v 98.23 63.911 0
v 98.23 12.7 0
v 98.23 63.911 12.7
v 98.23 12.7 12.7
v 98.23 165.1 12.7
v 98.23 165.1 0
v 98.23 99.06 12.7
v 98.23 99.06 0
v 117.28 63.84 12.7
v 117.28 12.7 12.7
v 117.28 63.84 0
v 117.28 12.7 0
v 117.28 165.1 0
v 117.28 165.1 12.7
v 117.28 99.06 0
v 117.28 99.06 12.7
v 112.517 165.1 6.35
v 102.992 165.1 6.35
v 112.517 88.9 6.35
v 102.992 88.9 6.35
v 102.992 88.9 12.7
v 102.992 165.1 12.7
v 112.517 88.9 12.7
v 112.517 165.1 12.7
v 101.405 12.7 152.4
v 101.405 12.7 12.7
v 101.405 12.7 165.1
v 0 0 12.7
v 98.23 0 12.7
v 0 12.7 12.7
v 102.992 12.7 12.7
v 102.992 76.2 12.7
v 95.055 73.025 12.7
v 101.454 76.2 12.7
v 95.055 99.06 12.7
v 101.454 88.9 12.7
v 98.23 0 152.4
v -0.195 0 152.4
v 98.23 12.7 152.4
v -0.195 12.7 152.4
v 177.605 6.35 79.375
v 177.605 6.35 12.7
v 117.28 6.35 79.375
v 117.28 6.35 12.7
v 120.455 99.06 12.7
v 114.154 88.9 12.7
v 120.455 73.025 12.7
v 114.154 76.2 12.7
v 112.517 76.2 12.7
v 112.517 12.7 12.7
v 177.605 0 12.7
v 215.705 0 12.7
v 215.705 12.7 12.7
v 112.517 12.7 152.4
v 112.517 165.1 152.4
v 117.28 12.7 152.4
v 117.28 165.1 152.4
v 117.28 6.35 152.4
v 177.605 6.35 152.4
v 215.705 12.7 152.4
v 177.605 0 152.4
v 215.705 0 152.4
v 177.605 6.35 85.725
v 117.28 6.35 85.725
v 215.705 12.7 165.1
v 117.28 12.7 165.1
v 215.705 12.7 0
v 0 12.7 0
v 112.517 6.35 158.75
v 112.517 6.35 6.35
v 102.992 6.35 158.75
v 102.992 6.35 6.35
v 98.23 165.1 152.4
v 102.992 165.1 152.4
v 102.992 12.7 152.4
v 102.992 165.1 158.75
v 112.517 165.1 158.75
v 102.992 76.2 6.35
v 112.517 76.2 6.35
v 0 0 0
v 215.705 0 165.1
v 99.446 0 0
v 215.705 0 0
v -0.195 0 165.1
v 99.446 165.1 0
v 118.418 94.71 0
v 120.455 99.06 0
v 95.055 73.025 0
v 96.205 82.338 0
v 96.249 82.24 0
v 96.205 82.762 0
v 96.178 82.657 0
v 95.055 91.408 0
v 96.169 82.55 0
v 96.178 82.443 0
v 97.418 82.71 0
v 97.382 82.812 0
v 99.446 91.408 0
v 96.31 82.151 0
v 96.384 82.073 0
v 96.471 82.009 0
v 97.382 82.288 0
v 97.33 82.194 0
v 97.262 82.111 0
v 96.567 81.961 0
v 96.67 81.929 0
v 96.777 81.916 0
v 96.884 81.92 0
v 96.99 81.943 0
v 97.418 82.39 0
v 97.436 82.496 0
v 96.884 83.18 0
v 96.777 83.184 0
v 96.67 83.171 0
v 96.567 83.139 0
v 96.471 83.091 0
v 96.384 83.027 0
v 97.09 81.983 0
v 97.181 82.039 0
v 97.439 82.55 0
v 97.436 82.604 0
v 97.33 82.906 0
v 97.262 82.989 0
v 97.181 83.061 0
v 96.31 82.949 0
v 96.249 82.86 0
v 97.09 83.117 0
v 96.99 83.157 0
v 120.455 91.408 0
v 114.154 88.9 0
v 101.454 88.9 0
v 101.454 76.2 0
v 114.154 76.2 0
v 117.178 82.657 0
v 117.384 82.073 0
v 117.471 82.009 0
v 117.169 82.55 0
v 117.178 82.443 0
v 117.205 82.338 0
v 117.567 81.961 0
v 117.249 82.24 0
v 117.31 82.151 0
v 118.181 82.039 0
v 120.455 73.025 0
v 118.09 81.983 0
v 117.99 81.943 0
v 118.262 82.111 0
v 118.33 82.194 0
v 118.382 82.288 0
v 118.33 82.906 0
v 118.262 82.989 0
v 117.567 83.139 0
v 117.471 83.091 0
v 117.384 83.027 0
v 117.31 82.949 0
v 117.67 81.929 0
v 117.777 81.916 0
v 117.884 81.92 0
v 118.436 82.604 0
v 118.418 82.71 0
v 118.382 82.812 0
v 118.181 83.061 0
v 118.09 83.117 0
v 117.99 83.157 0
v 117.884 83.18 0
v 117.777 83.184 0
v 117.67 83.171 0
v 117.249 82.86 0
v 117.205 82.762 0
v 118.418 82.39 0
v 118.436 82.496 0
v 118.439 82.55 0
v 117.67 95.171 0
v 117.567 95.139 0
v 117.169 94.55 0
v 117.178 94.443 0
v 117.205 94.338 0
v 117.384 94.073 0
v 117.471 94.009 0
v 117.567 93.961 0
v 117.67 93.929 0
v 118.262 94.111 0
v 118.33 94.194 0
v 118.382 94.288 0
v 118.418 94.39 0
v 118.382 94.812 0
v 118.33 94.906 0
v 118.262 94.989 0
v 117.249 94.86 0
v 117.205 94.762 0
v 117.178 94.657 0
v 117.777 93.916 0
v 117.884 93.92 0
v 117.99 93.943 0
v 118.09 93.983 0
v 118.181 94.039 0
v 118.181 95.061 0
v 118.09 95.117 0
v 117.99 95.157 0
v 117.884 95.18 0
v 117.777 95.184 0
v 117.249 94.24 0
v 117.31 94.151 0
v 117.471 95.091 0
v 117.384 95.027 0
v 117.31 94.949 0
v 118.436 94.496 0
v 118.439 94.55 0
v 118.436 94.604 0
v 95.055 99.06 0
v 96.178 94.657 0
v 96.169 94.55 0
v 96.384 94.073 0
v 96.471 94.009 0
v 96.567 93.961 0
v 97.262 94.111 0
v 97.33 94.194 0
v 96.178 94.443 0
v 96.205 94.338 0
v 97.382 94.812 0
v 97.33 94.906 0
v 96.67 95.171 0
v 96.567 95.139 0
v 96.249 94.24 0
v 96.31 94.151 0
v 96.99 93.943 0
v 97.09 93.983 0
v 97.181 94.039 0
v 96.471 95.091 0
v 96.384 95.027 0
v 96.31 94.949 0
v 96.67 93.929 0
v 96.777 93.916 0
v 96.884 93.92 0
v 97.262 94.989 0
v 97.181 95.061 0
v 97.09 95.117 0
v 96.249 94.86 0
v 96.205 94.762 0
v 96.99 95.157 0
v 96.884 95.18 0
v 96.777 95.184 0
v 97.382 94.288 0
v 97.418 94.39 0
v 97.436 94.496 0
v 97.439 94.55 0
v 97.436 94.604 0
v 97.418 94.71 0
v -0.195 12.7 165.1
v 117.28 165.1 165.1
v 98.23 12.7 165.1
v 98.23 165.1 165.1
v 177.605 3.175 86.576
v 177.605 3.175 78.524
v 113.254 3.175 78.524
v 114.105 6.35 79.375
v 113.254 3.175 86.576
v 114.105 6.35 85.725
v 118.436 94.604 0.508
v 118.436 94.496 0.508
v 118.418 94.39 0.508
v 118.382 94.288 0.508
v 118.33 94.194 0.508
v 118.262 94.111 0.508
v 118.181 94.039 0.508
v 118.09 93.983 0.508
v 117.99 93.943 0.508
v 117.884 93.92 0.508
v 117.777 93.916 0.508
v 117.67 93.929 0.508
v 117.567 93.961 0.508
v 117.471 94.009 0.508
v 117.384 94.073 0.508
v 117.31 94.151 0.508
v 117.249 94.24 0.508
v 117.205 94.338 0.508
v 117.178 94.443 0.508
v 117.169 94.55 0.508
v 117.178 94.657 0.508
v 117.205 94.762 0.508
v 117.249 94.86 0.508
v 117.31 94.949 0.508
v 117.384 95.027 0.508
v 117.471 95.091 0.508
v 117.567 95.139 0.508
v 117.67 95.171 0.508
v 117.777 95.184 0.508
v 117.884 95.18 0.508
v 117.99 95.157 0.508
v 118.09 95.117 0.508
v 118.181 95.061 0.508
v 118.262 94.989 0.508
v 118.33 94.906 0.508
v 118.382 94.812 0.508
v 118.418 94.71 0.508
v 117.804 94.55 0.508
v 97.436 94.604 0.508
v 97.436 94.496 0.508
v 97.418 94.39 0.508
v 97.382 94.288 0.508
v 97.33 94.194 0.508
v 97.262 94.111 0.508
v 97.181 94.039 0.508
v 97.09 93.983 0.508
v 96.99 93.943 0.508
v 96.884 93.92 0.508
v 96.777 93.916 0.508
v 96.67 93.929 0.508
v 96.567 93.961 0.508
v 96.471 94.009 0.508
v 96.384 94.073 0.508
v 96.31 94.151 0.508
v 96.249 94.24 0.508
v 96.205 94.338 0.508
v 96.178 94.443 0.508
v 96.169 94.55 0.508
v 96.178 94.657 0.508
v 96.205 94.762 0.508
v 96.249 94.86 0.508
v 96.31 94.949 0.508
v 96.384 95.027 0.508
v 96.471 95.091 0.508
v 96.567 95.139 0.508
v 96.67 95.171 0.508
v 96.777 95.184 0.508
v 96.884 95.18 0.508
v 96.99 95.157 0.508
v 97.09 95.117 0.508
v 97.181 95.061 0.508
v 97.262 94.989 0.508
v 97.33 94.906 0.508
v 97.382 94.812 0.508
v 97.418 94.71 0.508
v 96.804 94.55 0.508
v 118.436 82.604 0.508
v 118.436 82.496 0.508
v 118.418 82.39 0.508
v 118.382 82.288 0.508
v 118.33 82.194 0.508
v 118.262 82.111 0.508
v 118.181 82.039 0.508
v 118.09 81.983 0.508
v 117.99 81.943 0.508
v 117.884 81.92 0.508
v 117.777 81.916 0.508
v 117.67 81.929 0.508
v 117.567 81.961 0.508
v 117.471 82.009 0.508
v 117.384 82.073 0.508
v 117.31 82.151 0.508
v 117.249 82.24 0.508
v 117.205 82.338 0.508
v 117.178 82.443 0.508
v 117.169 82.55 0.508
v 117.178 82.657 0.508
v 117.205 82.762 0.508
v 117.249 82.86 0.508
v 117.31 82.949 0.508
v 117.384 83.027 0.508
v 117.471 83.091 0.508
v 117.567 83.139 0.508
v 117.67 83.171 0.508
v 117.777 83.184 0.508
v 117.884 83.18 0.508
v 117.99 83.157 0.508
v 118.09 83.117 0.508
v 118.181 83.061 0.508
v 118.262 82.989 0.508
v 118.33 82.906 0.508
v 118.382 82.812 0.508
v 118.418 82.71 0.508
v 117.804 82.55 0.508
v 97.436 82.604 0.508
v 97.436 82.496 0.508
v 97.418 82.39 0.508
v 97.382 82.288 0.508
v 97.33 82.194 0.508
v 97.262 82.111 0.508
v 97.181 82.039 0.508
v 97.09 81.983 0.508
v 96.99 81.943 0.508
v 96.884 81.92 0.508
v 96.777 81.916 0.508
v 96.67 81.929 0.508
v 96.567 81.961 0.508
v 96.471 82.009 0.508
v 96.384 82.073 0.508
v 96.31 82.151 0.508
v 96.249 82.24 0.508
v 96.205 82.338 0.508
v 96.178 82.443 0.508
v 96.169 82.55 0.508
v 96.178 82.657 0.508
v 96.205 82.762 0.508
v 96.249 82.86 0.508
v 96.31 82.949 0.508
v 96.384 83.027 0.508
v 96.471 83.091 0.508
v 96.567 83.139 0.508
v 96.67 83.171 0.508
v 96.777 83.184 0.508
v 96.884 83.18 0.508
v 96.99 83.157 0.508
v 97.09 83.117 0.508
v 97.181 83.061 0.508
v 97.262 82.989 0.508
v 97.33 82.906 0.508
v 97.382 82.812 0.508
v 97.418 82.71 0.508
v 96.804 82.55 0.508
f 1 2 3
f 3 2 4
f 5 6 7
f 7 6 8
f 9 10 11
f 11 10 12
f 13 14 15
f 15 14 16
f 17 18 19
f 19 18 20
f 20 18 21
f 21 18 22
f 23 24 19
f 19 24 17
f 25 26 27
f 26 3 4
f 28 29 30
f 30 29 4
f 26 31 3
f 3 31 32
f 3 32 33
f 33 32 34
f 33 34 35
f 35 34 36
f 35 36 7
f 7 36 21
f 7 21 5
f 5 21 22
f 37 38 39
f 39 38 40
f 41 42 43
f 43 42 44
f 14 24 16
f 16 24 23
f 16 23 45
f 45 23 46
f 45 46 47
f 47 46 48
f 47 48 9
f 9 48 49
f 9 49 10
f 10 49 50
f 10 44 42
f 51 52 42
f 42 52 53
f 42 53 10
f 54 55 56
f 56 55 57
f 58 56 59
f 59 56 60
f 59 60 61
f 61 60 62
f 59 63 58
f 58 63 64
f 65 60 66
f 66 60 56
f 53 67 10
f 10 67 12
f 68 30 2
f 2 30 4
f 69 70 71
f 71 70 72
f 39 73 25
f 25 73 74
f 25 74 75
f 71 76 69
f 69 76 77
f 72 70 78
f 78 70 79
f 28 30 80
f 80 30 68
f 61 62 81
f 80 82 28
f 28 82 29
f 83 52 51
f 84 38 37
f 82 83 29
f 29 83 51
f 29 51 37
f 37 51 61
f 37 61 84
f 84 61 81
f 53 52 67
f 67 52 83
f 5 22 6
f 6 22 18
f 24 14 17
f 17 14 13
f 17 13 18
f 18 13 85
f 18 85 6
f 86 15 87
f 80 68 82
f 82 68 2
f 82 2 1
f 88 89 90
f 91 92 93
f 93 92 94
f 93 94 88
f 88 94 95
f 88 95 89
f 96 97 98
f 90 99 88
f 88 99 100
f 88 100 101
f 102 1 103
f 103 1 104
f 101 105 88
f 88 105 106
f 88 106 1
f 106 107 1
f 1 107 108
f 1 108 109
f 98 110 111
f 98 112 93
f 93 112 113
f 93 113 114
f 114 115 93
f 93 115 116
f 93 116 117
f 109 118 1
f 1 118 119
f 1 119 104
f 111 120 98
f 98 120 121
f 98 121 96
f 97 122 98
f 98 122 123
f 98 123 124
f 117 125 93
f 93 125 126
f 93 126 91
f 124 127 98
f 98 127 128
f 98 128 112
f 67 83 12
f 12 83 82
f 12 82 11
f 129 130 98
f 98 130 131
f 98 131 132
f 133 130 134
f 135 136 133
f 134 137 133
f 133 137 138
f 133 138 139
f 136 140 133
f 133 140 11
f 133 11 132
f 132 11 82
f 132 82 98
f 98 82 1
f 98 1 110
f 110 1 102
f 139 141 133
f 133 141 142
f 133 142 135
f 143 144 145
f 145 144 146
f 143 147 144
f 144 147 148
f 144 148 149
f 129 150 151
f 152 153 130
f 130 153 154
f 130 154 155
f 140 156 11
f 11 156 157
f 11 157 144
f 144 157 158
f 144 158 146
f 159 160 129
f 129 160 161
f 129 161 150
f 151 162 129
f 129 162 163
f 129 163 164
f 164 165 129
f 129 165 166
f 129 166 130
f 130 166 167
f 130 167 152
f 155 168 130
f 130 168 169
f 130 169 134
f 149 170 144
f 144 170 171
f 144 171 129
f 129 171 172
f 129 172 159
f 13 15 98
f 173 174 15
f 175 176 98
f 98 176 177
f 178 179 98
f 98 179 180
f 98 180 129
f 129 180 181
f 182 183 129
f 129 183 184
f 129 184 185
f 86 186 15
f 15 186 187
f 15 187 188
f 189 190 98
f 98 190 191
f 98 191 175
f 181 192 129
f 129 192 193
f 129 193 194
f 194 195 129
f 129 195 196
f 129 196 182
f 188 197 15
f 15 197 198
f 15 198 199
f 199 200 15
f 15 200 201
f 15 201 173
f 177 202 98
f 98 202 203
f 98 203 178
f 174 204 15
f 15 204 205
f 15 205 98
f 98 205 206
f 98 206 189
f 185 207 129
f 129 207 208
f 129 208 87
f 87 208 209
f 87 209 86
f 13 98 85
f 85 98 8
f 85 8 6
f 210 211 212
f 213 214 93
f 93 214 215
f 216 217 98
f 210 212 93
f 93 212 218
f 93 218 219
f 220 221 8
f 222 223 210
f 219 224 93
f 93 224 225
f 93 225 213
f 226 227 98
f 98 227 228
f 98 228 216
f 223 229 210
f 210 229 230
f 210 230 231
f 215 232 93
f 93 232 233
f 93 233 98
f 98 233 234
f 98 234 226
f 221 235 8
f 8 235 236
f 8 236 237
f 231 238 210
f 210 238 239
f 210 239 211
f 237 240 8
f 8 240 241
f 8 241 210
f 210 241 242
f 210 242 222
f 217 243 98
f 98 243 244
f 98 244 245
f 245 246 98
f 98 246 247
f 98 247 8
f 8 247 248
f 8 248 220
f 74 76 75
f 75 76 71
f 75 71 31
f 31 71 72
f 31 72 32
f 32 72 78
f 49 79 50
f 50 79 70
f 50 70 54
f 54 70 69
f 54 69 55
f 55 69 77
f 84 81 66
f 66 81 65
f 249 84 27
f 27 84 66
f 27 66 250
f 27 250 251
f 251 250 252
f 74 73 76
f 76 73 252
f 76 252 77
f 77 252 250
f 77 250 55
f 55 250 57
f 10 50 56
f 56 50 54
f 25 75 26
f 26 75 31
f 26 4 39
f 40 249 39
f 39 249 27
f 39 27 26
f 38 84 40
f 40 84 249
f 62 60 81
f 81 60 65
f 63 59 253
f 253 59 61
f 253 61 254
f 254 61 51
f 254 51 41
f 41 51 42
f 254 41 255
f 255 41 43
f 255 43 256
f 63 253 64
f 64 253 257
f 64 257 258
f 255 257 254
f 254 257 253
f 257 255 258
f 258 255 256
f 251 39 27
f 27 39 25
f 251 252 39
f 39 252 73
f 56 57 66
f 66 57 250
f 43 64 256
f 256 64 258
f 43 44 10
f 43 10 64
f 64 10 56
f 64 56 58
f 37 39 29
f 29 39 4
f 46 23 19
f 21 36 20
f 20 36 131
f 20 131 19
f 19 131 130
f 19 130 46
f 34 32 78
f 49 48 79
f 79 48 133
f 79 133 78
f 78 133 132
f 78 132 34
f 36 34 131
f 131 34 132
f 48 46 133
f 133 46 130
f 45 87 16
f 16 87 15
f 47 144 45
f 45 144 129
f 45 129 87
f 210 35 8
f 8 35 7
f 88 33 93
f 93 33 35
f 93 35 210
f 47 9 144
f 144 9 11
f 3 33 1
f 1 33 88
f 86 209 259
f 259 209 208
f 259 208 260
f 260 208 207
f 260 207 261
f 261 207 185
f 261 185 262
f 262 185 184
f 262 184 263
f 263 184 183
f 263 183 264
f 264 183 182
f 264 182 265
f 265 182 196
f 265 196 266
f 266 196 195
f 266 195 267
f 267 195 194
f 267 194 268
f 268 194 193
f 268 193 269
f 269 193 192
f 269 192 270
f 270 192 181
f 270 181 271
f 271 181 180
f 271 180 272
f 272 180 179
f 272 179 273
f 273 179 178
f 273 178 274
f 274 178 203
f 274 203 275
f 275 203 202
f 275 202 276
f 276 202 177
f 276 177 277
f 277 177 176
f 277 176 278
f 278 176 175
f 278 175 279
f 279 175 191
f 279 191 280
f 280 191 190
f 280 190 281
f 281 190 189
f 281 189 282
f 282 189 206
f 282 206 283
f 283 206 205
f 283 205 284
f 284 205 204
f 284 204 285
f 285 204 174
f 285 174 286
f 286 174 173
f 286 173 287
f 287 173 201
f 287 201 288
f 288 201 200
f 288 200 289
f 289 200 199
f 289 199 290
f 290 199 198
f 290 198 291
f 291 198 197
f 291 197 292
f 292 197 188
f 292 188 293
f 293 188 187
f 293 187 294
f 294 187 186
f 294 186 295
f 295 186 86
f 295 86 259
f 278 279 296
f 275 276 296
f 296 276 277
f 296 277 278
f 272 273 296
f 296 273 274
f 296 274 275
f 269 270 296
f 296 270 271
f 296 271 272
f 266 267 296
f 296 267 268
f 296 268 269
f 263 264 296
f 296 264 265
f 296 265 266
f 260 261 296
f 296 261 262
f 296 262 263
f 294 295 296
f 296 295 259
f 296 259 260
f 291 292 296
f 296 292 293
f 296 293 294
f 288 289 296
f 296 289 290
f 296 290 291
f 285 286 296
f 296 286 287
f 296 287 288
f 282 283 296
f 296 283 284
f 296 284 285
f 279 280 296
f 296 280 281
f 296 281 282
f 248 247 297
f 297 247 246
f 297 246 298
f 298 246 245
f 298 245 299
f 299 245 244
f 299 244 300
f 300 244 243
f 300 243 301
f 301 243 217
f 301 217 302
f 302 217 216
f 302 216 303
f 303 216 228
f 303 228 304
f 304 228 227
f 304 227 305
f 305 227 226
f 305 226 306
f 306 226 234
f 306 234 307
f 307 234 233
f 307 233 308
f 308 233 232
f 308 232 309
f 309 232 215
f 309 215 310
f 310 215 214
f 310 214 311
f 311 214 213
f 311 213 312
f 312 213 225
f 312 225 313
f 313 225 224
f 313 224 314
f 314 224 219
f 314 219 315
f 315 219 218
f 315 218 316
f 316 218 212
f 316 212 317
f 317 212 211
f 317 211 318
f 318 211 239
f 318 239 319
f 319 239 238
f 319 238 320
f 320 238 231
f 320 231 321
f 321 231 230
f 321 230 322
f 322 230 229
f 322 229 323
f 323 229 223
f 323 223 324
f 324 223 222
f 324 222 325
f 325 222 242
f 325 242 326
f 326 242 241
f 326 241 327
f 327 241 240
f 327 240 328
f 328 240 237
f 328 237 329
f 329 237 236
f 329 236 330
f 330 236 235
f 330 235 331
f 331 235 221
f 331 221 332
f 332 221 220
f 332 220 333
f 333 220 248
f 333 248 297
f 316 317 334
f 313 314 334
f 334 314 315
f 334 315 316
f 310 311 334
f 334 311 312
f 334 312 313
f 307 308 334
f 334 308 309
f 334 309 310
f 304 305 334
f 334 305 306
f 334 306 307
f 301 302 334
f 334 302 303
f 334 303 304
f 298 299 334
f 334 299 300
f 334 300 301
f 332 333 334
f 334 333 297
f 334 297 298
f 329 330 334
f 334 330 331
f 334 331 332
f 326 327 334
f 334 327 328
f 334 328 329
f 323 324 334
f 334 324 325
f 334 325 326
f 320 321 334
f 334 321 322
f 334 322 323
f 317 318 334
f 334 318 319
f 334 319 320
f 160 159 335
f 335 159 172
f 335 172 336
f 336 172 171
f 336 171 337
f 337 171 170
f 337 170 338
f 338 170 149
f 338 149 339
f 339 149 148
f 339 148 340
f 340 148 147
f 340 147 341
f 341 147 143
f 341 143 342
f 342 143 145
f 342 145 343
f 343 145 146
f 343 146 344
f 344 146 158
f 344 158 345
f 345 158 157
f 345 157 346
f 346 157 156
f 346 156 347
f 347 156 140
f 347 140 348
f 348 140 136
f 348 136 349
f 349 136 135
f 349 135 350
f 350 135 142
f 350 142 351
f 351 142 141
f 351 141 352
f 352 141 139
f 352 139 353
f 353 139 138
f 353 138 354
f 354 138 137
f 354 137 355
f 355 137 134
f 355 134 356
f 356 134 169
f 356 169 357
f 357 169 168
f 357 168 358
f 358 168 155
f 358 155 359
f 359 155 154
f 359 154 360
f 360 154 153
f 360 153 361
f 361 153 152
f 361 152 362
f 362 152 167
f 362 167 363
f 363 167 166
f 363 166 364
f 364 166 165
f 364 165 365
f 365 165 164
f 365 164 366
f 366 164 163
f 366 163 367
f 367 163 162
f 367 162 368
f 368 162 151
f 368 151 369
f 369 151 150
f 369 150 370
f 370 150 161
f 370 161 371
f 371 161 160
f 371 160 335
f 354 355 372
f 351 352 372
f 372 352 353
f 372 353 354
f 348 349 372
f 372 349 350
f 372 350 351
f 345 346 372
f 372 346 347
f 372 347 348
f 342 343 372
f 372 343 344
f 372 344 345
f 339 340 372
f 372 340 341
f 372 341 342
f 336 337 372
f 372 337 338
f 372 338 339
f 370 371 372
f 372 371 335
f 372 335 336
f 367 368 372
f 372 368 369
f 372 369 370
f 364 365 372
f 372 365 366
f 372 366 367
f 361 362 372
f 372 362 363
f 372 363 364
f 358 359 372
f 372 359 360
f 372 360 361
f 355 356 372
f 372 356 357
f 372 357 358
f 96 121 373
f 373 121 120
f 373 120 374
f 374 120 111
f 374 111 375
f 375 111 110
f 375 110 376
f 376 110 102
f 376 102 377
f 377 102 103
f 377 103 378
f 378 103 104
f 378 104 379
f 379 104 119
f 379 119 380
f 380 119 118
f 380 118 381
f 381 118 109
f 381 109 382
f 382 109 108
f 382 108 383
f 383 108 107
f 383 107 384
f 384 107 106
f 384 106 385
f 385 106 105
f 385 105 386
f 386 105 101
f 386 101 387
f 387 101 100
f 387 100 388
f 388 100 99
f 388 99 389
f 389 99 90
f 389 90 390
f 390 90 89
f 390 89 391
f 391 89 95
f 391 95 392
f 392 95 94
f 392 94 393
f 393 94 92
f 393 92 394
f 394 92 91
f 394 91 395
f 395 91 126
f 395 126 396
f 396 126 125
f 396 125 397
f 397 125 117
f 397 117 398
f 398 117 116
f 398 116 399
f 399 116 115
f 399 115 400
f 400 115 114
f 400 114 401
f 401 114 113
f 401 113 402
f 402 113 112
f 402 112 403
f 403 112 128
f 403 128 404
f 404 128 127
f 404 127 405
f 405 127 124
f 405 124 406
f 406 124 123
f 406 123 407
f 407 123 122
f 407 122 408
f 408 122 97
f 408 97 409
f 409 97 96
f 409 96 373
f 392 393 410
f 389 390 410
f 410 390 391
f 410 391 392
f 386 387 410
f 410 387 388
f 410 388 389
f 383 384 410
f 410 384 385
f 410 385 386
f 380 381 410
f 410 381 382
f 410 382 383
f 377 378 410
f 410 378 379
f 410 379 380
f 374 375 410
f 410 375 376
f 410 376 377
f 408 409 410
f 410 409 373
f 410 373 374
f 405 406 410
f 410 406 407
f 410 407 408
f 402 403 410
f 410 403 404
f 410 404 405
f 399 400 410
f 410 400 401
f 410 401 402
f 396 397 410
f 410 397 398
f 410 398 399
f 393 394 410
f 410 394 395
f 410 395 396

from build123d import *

# Parameters (mm, degrees)
BOSS_EXTRUDE2_DEPTH  = 6.35
BOSS_EXTRUDE3_DEPTH  = 6.35
SKETCH3_W            = 1.5875
SKETCH3_H            = 158.75
BOSS_EXTRUDE4_DEPTH  = 6.35
SKETCH4_W            = 12.7
SKETCH4_H            = 6.35
BOSS_EXTRUDE5_DEPTH  = 158.75
SKETCH5_W            = 12.7
SKETCH5_H            = 6.35
BOSS_EXTRUDE6_DEPTH  = 158.75
SKETCH6_W            = 1.5875
SKETCH6_H            = 158.75
BOSS_EXTRUDE7_DEPTH  = 6.35
SKETCH7_W            = 1.5875
SKETCH7_H            = 158.75
BOSS_EXTRUDE8_DEPTH  = 6.35
SKETCH8_W            = 1.5875
SKETCH8_H            = 6.35
BOSS_EXTRUDE9_DEPTH  = 139.7
SKETCH10_W           = 1.5875
SKETCH10_H           = 6.35
BOSS_EXTRUDE10_DEPTH = 139.7
SKETCH11_W           = 12.7
SKETCH11_H           = 12.699759929
BOSS_EXTRUDE11_DEPTH = 101.6
SKETCH12_W           = 101.404934815
SKETCH12_H           = 12.7
BOSS_EXTRUDE12_DEPTH = 6.35
SKETCH13_W           = 101.6
SKETCH13_H           = 12.7
BOSS_EXTRUDE13_DEPTH = 6.35
SKETCH14_W           = 12.7
SKETCH14_H           = 12.7
BOSS_EXTRUDE14_DEPTH = 101.6
SKETCH15_W           = 139.7
SKETCH15_H           = 6.35
BOSS_EXTRUDE15_DEPTH = 63.5
CUT_EXTRUDE1_DEPTH   = 3.175
CUT_EXTRUDE1_DRAFT   = 15
CUT_EXTRUDE3_DEPTH   = 6.35
SKETCH18_W           = 12.7
SKETCH18_H           = 152.4
BOSS_EXTRUDE17_DEPTH = 3.175
SKETCH19_W           = 12.7
SKETCH19_H           = 152.4
BOSS_EXTRUDE18_DEPTH = 3.175
SKETCH20_W           = 12.7
SKETCH20_H           = 152.4
BOSS_EXTRUDE19_DEPTH = 3.175
SKETCH21_W           = 12.7
SKETCH21_H           = 152.4
BOSS_EXTRUDE20_DEPTH = 3.175
SKETCH22_W           = 139.7
SKETCH22_H           = 6.35
BOSS_EXTRUDE21_DEPTH = 3.175
SKETCH23_W           = 139.7
SKETCH23_H           = 12.699759929
BOSS_EXTRUDE22_DEPTH = 3.175
CUT_EXTRUDE4_DEPTH   = 12.7
SKETCH30_W           = 12.7
SKETCH30_H           = 26.035
BOSS_EXTRUDE25_DEPTH = 3.175
SKETCH31_W           = 12.7
SKETCH31_H           = 26.035
BOSS_EXTRUDE26_DEPTH = 3.175
BOSS_EXTRUDE27_DEPTH = 12.7
BOSS_EXTRUDE28_DEPTH = 12.7
SKETCH37_R           = 0.635
BOSS_EXTRUDE29_DEPTH = 7.9375
CUT_EXTRUDE5_START   = -8.4455
SKETCH38_R           = 0.635
CUT_EXTRUDE5_DEPTH   = 8.4455
CUT_EXTRUDE6_START   = -8.4455
SKETCH39_R           = 0.635
CUT_EXTRUDE6_DEPTH   = 8.4455
CUT_EXTRUDE7_START   = -8.4455
SKETCH40_R           = 0.635
CUT_EXTRUDE7_DEPTH   = 8.4455
CUT_EXTRUDE8_START   = -8.4455
SKETCH41_R           = 0.635
CUT_EXTRUDE8_DEPTH   = 8.4455


with BuildPart() as part:
    # Sketch1 → Boss-Extrude2 (new body)
    with BuildSketch(Plane.XY):
        Polygon((0, 0), (215.704934815, 0), (215.704934815, 12.7), (114.104934815, 12.7), (114.104934815, 165.1), (101.404934815, 165.1), (101.404934815, 12.7), (0, 12.7), align=None)
    extrude(amount=BOSS_EXTRUDE2_DEPTH)

    # Sketch2 → Boss-Extrude3 (add)
    with BuildSketch(Plane.XY.offset(6.35)):
        Polygon((101.404934815, 12.7), (101.404934815, 6.35), (102.992434815, 6.35), (102.992434815, 165.1), (101.404934815, 165.1), align=None)
    extrude(amount=BOSS_EXTRUDE3_DEPTH)

    # Sketch3 → Boss-Extrude4 (add)
    with BuildSketch(Plane.XY.offset(6.35)):
        with Locations((113.311184815, 85.725)):
            Rectangle(SKETCH3_W, SKETCH3_H)
    extrude(amount=BOSS_EXTRUDE4_DEPTH)

    # Sketch4 → Boss-Extrude5 (add)
    with BuildSketch(Plane.XY.offset(6.35)):
        with Locations((107.754934815, 3.175)):
            Rectangle(SKETCH4_W, SKETCH4_H)
    extrude(amount=BOSS_EXTRUDE5_DEPTH)

    # Sketch5 → Boss-Extrude6 (add)
    with BuildSketch(Plane(origin=(0, 6.35, 0), x_dir=(1, 0, 0), z_dir=(0, 1, 0))):
        with Locations((107.754934815, -161.925)):
            Rectangle(SKETCH5_W, SKETCH5_H)
    extrude(amount=BOSS_EXTRUDE6_DEPTH)

    # Sketch6 → Boss-Extrude7 (add)
    with BuildSketch(Plane(origin=(0, 0, 158.75), x_dir=(-1, 0, 0), z_dir=(0, 0, -1))):
        with Locations((-102.198684815, 85.725)):
            Rectangle(SKETCH6_W, SKETCH6_H)
    extrude(amount=BOSS_EXTRUDE7_DEPTH)

    # Sketch7 → Boss-Extrude8 (add)
    with BuildSketch(Plane(origin=(0, 0, 158.75), x_dir=(-1, 0, 0), z_dir=(0, 0, -1))):
        with Locations((-113.311184815, 85.725)):
            Rectangle(SKETCH7_W, SKETCH7_H)
    extrude(amount=BOSS_EXTRUDE8_DEPTH)

    # Sketch8 → Boss-Extrude9 (add)
    with BuildSketch(Plane(origin=(0, 0, 152.4), x_dir=(-1, 0, 0), z_dir=(0, 0, -1))):
        with Locations((-113.311184815, 9.525)):
            Rectangle(SKETCH8_W, SKETCH8_H)
    extrude(amount=BOSS_EXTRUDE9_DEPTH)

    # Sketch10 → Boss-Extrude10 (add)
    with BuildSketch(Plane.XY.offset(12.7)):
        with Locations((102.198684815, 9.525)):
            Rectangle(SKETCH10_W, SKETCH10_H)
    extrude(amount=BOSS_EXTRUDE10_DEPTH)

    # Sketch11 → Boss-Extrude11 (add)
    with BuildSketch(Plane.ZY.offset(-101.404934815)):
        with Locations((158.75, 6.349879965)):
            Rectangle(SKETCH11_W, SKETCH11_H)
    extrude(amount=BOSS_EXTRUDE11_DEPTH)

    # Sketch12 → Boss-Extrude12 (add)
    with BuildSketch(Plane.XY.offset(6.35)):
        with Locations((50.702467408, 6.35)):
            Rectangle(SKETCH12_W, SKETCH12_H)
    extrude(amount=BOSS_EXTRUDE12_DEPTH)

    # Sketch13 → Boss-Extrude13 (add)
    with BuildSketch(Plane.XY.offset(6.35)):
        with Locations((164.904934815, 6.35)):
            Rectangle(SKETCH13_W, SKETCH13_H)
    extrude(amount=BOSS_EXTRUDE13_DEPTH)

    # Sketch14 → Boss-Extrude14 (add)
    with BuildSketch(Plane(origin=(114.104934815, 0, 0), x_dir=(0, 0, -1), z_dir=(1, 0, 0))):
        with Locations((-158.75, 6.35)):
            Rectangle(SKETCH14_W, SKETCH14_H)
    extrude(amount=BOSS_EXTRUDE14_DEPTH)

    # Sketch15 → Boss-Extrude15 (add)
    with BuildSketch(Plane(origin=(114.104934815, 0, 0), x_dir=(0, 0, -1), z_dir=(1, 0, 0))):
        with Locations((-82.55, 3.175)):
            Rectangle(SKETCH15_W, SKETCH15_H)
    extrude(amount=BOSS_EXTRUDE15_DEPTH)


with BuildPart() as cut_extrude1_tool:
    # Sketch16 → Cut-Extrude1 (with draft: the straight prism first)
    with BuildSketch(Plane(origin=(0, 6.35, 0), x_dir=(1, 0, 0), z_dir=(0, 1, 0))):
        Polygon((177.604934815, -82.55), (177.604934815, -79.375), (114.104934815, -79.375), (114.104934815, -82.55), (114.104934815, -85.725), (177.604934815, -85.725), align=None)
    extrude(amount=-CUT_EXTRUDE1_DEPTH)
    # Cut-Extrude1: the draft: its side faces are tilted about the plane it starts from
    cut_extrude1_sides = [cut_extrude1_tool.faces().sort_by_distance(p)[0] for p in [
        (177.604934815, 4.7625, 82.55),
        (114.104934815, 4.7625, 82.55),
        (145.854934815, 4.7625, 85.725),
        (145.854934815, 4.7625, 79.375),
    ]]
    draft(cut_extrude1_sides, Plane(origin=(0, 6.35, 0), x_dir=(1, 0, 0), z_dir=(0, 1, 0)), CUT_EXTRUDE1_DRAFT)


with BuildPart() as part_1:
    add(part.part)

    # Cut-Extrude1: cut by cut_extrude1_tool
    add(cut_extrude1_tool.part, mode=Mode.SUBTRACT)

    # Sketch17 → Cut-Extrude3 (cut)
    with BuildSketch(Plane(origin=(0, 0, 0), x_dir=(-1, 0, 0), z_dir=(0, 0, -1))):
        Polygon((-107.803701111, 87.3125), (-112.566201111, 87.3125), (-112.566201111, 82.55), (-112.566201111, 77.784684897), (-107.806516214, 77.784684897), (-103.041201111, 77.784684897), (-103.041201111, 82.55), (-103.041201111, 87.3125), align=None)
    extrude(amount=-CUT_EXTRUDE3_DEPTH, mode=Mode.SUBTRACT)

    # Sketch18 → Boss-Extrude17 (add)
    with BuildSketch(Plane.ZY.offset(-101.404934815)):
        with Locations((6.35, 88.9)):
            Rectangle(SKETCH18_W, SKETCH18_H)
    extrude(amount=BOSS_EXTRUDE17_DEPTH)

    # Sketch19 → Boss-Extrude18 (add)
    with BuildSketch(Plane(origin=(114.104934815, 0, 0), x_dir=(0, 0, -1), z_dir=(1, 0, 0))):
        with Locations((-6.35, 88.9)):
            Rectangle(SKETCH19_W, SKETCH19_H)
    extrude(amount=BOSS_EXTRUDE18_DEPTH)

    # Sketch20 → Boss-Extrude19 (add)
    with BuildSketch(Plane.ZY.offset(-101.404934815)):
        with Locations((158.75, 88.9)):
            Rectangle(SKETCH20_W, SKETCH20_H)
    extrude(amount=BOSS_EXTRUDE19_DEPTH)

    # Sketch21 → Boss-Extrude20 (add)
    with BuildSketch(Plane(origin=(114.104934815, 0, 0), x_dir=(0, 0, -1), z_dir=(1, 0, 0))):
        with Locations((-158.75, 88.9)):
            Rectangle(SKETCH21_W, SKETCH21_H)
    extrude(amount=BOSS_EXTRUDE20_DEPTH)

    # Sketch22 → Boss-Extrude21 (add)
    with BuildSketch(Plane(origin=(114.104934815, 0, 0), x_dir=(0, 0, -1), z_dir=(1, 0, 0))):
        with Locations((-82.55, 9.525)):
            Rectangle(SKETCH22_W, SKETCH22_H)
    extrude(amount=BOSS_EXTRUDE21_DEPTH)

    # Sketch23 → Boss-Extrude22 (add)
    with BuildSketch(Plane.ZY.offset(-101.404934815)):
        with Locations((82.55, 6.349879965)):
            Rectangle(SKETCH23_W, SKETCH23_H)
    extrude(amount=BOSS_EXTRUDE22_DEPTH)

    # Sketch25 → Cut-Extrude4 (cut)
    with BuildSketch(Plane(origin=(0, 0, 0), x_dir=(-1, 0, 0), z_dir=(0, 0, -1))):
        Polygon((-112.566201111, 88.9), (-101.453701111, 88.9), (-101.453701111, 76.2), (-114.153701111, 76.2), (-114.153701111, 88.9), align=None)
    extrude(amount=-CUT_EXTRUDE4_DEPTH, mode=Mode.SUBTRACT)

    # Sketch30 → Boss-Extrude25 (add)
    with BuildSketch(Plane(origin=(117.279934815, 0, 0), x_dir=(0, 0, -1), z_dir=(1, 0, 0))):
        with Locations((-6.35, 86.0425)):
            Rectangle(SKETCH30_W, SKETCH30_H)
    extrude(amount=BOSS_EXTRUDE25_DEPTH)

    # Sketch31 → Boss-Extrude26 (add)
    with BuildSketch(Plane.ZY.offset(-98.229934815)):
        with Locations((6.35, 86.0425)):
            Rectangle(SKETCH31_W, SKETCH31_H)
    extrude(amount=BOSS_EXTRUDE26_DEPTH)

    # Sketch32 → Boss-Extrude27 (add)
    with BuildSketch(Plane(origin=(0, 0, 0), x_dir=(-1, 0, 0), z_dir=(0, 0, -1))):
        Polygon((-120.454934815, 73.025), (-117.279934815, 63.840058945), (-117.279934815, 73.025), align=None)
    extrude(amount=-BOSS_EXTRUDE27_DEPTH)

    # Sketch36 → Boss-Extrude28 (add)
    with BuildSketch(Plane(origin=(0, 0, 0), x_dir=(-1, 0, 0), z_dir=(0, 0, -1))):
        Polygon((-95.054934815, 73.025), (-98.229934815, 63.911198594), (-98.229934815, 73.025), align=None)
    extrude(amount=-BOSS_EXTRUDE28_DEPTH)

    # Sketch37 → Boss-Extrude29 (add)
    with BuildSketch(Plane(origin=(0, 0, 0), x_dir=(-1, 0, 0), z_dir=(0, 0, -1))):
        with Locations(Location((-117.803681111, 82.55, 0), (0, 0, 180))):
            Circle(SKETCH37_R)
        with Locations(Location((-96.803672311, 82.55, 0), (0, 0, 180))):
            Circle(SKETCH37_R)
        with Locations(Location((-96.803672311, 94.5500014, 0), (0, 0, 180))):
            Circle(SKETCH37_R)
        with Locations(Location((-117.803681111, 94.5500014, 0), (0, 0, 180))):
            Circle(SKETCH37_R)
    extrude(amount=BOSS_EXTRUDE29_DEPTH)

    # Sketch38 → Cut-Extrude5 (cut)
    with BuildSketch(Plane(origin=(0, 0, -7.9375), x_dir=(-1, 0, 0), z_dir=(0, 0, -1)).offset(CUT_EXTRUDE5_START)):
        with Locations((-117.803681111, 94.5500014)):
            Circle(SKETCH38_R)
    extrude(amount=CUT_EXTRUDE5_DEPTH, mode=Mode.SUBTRACT)

    # Sketch39 → Cut-Extrude6 (cut)
    with BuildSketch(Plane(origin=(0, 0, -7.9375), x_dir=(-1, 0, 0), z_dir=(0, 0, -1)).offset(CUT_EXTRUDE6_START)):
        with Locations((-96.803672311, 94.5500014)):
            Circle(SKETCH39_R)
    extrude(amount=CUT_EXTRUDE6_DEPTH, mode=Mode.SUBTRACT)

    # Sketch40 → Cut-Extrude7 (cut)
    with BuildSketch(Plane(origin=(0, 0, -7.9375), x_dir=(-1, 0, 0), z_dir=(0, 0, -1)).offset(CUT_EXTRUDE7_START)):
        with Locations((-117.803681111, 82.55)):
            Circle(SKETCH40_R)
    extrude(amount=CUT_EXTRUDE7_DEPTH, mode=Mode.SUBTRACT)

    # Sketch41 → Cut-Extrude8 (cut)
    with BuildSketch(Plane(origin=(0, 0, -7.9375), x_dir=(-1, 0, 0), z_dir=(0, 0, -1)).offset(CUT_EXTRUDE8_START)):
        with Locations((-96.803672311, 82.55)):
            Circle(SKETCH41_R)
    extrude(amount=CUT_EXTRUDE8_DEPTH, mode=Mode.SUBTRACT)


solid = part_1.part
